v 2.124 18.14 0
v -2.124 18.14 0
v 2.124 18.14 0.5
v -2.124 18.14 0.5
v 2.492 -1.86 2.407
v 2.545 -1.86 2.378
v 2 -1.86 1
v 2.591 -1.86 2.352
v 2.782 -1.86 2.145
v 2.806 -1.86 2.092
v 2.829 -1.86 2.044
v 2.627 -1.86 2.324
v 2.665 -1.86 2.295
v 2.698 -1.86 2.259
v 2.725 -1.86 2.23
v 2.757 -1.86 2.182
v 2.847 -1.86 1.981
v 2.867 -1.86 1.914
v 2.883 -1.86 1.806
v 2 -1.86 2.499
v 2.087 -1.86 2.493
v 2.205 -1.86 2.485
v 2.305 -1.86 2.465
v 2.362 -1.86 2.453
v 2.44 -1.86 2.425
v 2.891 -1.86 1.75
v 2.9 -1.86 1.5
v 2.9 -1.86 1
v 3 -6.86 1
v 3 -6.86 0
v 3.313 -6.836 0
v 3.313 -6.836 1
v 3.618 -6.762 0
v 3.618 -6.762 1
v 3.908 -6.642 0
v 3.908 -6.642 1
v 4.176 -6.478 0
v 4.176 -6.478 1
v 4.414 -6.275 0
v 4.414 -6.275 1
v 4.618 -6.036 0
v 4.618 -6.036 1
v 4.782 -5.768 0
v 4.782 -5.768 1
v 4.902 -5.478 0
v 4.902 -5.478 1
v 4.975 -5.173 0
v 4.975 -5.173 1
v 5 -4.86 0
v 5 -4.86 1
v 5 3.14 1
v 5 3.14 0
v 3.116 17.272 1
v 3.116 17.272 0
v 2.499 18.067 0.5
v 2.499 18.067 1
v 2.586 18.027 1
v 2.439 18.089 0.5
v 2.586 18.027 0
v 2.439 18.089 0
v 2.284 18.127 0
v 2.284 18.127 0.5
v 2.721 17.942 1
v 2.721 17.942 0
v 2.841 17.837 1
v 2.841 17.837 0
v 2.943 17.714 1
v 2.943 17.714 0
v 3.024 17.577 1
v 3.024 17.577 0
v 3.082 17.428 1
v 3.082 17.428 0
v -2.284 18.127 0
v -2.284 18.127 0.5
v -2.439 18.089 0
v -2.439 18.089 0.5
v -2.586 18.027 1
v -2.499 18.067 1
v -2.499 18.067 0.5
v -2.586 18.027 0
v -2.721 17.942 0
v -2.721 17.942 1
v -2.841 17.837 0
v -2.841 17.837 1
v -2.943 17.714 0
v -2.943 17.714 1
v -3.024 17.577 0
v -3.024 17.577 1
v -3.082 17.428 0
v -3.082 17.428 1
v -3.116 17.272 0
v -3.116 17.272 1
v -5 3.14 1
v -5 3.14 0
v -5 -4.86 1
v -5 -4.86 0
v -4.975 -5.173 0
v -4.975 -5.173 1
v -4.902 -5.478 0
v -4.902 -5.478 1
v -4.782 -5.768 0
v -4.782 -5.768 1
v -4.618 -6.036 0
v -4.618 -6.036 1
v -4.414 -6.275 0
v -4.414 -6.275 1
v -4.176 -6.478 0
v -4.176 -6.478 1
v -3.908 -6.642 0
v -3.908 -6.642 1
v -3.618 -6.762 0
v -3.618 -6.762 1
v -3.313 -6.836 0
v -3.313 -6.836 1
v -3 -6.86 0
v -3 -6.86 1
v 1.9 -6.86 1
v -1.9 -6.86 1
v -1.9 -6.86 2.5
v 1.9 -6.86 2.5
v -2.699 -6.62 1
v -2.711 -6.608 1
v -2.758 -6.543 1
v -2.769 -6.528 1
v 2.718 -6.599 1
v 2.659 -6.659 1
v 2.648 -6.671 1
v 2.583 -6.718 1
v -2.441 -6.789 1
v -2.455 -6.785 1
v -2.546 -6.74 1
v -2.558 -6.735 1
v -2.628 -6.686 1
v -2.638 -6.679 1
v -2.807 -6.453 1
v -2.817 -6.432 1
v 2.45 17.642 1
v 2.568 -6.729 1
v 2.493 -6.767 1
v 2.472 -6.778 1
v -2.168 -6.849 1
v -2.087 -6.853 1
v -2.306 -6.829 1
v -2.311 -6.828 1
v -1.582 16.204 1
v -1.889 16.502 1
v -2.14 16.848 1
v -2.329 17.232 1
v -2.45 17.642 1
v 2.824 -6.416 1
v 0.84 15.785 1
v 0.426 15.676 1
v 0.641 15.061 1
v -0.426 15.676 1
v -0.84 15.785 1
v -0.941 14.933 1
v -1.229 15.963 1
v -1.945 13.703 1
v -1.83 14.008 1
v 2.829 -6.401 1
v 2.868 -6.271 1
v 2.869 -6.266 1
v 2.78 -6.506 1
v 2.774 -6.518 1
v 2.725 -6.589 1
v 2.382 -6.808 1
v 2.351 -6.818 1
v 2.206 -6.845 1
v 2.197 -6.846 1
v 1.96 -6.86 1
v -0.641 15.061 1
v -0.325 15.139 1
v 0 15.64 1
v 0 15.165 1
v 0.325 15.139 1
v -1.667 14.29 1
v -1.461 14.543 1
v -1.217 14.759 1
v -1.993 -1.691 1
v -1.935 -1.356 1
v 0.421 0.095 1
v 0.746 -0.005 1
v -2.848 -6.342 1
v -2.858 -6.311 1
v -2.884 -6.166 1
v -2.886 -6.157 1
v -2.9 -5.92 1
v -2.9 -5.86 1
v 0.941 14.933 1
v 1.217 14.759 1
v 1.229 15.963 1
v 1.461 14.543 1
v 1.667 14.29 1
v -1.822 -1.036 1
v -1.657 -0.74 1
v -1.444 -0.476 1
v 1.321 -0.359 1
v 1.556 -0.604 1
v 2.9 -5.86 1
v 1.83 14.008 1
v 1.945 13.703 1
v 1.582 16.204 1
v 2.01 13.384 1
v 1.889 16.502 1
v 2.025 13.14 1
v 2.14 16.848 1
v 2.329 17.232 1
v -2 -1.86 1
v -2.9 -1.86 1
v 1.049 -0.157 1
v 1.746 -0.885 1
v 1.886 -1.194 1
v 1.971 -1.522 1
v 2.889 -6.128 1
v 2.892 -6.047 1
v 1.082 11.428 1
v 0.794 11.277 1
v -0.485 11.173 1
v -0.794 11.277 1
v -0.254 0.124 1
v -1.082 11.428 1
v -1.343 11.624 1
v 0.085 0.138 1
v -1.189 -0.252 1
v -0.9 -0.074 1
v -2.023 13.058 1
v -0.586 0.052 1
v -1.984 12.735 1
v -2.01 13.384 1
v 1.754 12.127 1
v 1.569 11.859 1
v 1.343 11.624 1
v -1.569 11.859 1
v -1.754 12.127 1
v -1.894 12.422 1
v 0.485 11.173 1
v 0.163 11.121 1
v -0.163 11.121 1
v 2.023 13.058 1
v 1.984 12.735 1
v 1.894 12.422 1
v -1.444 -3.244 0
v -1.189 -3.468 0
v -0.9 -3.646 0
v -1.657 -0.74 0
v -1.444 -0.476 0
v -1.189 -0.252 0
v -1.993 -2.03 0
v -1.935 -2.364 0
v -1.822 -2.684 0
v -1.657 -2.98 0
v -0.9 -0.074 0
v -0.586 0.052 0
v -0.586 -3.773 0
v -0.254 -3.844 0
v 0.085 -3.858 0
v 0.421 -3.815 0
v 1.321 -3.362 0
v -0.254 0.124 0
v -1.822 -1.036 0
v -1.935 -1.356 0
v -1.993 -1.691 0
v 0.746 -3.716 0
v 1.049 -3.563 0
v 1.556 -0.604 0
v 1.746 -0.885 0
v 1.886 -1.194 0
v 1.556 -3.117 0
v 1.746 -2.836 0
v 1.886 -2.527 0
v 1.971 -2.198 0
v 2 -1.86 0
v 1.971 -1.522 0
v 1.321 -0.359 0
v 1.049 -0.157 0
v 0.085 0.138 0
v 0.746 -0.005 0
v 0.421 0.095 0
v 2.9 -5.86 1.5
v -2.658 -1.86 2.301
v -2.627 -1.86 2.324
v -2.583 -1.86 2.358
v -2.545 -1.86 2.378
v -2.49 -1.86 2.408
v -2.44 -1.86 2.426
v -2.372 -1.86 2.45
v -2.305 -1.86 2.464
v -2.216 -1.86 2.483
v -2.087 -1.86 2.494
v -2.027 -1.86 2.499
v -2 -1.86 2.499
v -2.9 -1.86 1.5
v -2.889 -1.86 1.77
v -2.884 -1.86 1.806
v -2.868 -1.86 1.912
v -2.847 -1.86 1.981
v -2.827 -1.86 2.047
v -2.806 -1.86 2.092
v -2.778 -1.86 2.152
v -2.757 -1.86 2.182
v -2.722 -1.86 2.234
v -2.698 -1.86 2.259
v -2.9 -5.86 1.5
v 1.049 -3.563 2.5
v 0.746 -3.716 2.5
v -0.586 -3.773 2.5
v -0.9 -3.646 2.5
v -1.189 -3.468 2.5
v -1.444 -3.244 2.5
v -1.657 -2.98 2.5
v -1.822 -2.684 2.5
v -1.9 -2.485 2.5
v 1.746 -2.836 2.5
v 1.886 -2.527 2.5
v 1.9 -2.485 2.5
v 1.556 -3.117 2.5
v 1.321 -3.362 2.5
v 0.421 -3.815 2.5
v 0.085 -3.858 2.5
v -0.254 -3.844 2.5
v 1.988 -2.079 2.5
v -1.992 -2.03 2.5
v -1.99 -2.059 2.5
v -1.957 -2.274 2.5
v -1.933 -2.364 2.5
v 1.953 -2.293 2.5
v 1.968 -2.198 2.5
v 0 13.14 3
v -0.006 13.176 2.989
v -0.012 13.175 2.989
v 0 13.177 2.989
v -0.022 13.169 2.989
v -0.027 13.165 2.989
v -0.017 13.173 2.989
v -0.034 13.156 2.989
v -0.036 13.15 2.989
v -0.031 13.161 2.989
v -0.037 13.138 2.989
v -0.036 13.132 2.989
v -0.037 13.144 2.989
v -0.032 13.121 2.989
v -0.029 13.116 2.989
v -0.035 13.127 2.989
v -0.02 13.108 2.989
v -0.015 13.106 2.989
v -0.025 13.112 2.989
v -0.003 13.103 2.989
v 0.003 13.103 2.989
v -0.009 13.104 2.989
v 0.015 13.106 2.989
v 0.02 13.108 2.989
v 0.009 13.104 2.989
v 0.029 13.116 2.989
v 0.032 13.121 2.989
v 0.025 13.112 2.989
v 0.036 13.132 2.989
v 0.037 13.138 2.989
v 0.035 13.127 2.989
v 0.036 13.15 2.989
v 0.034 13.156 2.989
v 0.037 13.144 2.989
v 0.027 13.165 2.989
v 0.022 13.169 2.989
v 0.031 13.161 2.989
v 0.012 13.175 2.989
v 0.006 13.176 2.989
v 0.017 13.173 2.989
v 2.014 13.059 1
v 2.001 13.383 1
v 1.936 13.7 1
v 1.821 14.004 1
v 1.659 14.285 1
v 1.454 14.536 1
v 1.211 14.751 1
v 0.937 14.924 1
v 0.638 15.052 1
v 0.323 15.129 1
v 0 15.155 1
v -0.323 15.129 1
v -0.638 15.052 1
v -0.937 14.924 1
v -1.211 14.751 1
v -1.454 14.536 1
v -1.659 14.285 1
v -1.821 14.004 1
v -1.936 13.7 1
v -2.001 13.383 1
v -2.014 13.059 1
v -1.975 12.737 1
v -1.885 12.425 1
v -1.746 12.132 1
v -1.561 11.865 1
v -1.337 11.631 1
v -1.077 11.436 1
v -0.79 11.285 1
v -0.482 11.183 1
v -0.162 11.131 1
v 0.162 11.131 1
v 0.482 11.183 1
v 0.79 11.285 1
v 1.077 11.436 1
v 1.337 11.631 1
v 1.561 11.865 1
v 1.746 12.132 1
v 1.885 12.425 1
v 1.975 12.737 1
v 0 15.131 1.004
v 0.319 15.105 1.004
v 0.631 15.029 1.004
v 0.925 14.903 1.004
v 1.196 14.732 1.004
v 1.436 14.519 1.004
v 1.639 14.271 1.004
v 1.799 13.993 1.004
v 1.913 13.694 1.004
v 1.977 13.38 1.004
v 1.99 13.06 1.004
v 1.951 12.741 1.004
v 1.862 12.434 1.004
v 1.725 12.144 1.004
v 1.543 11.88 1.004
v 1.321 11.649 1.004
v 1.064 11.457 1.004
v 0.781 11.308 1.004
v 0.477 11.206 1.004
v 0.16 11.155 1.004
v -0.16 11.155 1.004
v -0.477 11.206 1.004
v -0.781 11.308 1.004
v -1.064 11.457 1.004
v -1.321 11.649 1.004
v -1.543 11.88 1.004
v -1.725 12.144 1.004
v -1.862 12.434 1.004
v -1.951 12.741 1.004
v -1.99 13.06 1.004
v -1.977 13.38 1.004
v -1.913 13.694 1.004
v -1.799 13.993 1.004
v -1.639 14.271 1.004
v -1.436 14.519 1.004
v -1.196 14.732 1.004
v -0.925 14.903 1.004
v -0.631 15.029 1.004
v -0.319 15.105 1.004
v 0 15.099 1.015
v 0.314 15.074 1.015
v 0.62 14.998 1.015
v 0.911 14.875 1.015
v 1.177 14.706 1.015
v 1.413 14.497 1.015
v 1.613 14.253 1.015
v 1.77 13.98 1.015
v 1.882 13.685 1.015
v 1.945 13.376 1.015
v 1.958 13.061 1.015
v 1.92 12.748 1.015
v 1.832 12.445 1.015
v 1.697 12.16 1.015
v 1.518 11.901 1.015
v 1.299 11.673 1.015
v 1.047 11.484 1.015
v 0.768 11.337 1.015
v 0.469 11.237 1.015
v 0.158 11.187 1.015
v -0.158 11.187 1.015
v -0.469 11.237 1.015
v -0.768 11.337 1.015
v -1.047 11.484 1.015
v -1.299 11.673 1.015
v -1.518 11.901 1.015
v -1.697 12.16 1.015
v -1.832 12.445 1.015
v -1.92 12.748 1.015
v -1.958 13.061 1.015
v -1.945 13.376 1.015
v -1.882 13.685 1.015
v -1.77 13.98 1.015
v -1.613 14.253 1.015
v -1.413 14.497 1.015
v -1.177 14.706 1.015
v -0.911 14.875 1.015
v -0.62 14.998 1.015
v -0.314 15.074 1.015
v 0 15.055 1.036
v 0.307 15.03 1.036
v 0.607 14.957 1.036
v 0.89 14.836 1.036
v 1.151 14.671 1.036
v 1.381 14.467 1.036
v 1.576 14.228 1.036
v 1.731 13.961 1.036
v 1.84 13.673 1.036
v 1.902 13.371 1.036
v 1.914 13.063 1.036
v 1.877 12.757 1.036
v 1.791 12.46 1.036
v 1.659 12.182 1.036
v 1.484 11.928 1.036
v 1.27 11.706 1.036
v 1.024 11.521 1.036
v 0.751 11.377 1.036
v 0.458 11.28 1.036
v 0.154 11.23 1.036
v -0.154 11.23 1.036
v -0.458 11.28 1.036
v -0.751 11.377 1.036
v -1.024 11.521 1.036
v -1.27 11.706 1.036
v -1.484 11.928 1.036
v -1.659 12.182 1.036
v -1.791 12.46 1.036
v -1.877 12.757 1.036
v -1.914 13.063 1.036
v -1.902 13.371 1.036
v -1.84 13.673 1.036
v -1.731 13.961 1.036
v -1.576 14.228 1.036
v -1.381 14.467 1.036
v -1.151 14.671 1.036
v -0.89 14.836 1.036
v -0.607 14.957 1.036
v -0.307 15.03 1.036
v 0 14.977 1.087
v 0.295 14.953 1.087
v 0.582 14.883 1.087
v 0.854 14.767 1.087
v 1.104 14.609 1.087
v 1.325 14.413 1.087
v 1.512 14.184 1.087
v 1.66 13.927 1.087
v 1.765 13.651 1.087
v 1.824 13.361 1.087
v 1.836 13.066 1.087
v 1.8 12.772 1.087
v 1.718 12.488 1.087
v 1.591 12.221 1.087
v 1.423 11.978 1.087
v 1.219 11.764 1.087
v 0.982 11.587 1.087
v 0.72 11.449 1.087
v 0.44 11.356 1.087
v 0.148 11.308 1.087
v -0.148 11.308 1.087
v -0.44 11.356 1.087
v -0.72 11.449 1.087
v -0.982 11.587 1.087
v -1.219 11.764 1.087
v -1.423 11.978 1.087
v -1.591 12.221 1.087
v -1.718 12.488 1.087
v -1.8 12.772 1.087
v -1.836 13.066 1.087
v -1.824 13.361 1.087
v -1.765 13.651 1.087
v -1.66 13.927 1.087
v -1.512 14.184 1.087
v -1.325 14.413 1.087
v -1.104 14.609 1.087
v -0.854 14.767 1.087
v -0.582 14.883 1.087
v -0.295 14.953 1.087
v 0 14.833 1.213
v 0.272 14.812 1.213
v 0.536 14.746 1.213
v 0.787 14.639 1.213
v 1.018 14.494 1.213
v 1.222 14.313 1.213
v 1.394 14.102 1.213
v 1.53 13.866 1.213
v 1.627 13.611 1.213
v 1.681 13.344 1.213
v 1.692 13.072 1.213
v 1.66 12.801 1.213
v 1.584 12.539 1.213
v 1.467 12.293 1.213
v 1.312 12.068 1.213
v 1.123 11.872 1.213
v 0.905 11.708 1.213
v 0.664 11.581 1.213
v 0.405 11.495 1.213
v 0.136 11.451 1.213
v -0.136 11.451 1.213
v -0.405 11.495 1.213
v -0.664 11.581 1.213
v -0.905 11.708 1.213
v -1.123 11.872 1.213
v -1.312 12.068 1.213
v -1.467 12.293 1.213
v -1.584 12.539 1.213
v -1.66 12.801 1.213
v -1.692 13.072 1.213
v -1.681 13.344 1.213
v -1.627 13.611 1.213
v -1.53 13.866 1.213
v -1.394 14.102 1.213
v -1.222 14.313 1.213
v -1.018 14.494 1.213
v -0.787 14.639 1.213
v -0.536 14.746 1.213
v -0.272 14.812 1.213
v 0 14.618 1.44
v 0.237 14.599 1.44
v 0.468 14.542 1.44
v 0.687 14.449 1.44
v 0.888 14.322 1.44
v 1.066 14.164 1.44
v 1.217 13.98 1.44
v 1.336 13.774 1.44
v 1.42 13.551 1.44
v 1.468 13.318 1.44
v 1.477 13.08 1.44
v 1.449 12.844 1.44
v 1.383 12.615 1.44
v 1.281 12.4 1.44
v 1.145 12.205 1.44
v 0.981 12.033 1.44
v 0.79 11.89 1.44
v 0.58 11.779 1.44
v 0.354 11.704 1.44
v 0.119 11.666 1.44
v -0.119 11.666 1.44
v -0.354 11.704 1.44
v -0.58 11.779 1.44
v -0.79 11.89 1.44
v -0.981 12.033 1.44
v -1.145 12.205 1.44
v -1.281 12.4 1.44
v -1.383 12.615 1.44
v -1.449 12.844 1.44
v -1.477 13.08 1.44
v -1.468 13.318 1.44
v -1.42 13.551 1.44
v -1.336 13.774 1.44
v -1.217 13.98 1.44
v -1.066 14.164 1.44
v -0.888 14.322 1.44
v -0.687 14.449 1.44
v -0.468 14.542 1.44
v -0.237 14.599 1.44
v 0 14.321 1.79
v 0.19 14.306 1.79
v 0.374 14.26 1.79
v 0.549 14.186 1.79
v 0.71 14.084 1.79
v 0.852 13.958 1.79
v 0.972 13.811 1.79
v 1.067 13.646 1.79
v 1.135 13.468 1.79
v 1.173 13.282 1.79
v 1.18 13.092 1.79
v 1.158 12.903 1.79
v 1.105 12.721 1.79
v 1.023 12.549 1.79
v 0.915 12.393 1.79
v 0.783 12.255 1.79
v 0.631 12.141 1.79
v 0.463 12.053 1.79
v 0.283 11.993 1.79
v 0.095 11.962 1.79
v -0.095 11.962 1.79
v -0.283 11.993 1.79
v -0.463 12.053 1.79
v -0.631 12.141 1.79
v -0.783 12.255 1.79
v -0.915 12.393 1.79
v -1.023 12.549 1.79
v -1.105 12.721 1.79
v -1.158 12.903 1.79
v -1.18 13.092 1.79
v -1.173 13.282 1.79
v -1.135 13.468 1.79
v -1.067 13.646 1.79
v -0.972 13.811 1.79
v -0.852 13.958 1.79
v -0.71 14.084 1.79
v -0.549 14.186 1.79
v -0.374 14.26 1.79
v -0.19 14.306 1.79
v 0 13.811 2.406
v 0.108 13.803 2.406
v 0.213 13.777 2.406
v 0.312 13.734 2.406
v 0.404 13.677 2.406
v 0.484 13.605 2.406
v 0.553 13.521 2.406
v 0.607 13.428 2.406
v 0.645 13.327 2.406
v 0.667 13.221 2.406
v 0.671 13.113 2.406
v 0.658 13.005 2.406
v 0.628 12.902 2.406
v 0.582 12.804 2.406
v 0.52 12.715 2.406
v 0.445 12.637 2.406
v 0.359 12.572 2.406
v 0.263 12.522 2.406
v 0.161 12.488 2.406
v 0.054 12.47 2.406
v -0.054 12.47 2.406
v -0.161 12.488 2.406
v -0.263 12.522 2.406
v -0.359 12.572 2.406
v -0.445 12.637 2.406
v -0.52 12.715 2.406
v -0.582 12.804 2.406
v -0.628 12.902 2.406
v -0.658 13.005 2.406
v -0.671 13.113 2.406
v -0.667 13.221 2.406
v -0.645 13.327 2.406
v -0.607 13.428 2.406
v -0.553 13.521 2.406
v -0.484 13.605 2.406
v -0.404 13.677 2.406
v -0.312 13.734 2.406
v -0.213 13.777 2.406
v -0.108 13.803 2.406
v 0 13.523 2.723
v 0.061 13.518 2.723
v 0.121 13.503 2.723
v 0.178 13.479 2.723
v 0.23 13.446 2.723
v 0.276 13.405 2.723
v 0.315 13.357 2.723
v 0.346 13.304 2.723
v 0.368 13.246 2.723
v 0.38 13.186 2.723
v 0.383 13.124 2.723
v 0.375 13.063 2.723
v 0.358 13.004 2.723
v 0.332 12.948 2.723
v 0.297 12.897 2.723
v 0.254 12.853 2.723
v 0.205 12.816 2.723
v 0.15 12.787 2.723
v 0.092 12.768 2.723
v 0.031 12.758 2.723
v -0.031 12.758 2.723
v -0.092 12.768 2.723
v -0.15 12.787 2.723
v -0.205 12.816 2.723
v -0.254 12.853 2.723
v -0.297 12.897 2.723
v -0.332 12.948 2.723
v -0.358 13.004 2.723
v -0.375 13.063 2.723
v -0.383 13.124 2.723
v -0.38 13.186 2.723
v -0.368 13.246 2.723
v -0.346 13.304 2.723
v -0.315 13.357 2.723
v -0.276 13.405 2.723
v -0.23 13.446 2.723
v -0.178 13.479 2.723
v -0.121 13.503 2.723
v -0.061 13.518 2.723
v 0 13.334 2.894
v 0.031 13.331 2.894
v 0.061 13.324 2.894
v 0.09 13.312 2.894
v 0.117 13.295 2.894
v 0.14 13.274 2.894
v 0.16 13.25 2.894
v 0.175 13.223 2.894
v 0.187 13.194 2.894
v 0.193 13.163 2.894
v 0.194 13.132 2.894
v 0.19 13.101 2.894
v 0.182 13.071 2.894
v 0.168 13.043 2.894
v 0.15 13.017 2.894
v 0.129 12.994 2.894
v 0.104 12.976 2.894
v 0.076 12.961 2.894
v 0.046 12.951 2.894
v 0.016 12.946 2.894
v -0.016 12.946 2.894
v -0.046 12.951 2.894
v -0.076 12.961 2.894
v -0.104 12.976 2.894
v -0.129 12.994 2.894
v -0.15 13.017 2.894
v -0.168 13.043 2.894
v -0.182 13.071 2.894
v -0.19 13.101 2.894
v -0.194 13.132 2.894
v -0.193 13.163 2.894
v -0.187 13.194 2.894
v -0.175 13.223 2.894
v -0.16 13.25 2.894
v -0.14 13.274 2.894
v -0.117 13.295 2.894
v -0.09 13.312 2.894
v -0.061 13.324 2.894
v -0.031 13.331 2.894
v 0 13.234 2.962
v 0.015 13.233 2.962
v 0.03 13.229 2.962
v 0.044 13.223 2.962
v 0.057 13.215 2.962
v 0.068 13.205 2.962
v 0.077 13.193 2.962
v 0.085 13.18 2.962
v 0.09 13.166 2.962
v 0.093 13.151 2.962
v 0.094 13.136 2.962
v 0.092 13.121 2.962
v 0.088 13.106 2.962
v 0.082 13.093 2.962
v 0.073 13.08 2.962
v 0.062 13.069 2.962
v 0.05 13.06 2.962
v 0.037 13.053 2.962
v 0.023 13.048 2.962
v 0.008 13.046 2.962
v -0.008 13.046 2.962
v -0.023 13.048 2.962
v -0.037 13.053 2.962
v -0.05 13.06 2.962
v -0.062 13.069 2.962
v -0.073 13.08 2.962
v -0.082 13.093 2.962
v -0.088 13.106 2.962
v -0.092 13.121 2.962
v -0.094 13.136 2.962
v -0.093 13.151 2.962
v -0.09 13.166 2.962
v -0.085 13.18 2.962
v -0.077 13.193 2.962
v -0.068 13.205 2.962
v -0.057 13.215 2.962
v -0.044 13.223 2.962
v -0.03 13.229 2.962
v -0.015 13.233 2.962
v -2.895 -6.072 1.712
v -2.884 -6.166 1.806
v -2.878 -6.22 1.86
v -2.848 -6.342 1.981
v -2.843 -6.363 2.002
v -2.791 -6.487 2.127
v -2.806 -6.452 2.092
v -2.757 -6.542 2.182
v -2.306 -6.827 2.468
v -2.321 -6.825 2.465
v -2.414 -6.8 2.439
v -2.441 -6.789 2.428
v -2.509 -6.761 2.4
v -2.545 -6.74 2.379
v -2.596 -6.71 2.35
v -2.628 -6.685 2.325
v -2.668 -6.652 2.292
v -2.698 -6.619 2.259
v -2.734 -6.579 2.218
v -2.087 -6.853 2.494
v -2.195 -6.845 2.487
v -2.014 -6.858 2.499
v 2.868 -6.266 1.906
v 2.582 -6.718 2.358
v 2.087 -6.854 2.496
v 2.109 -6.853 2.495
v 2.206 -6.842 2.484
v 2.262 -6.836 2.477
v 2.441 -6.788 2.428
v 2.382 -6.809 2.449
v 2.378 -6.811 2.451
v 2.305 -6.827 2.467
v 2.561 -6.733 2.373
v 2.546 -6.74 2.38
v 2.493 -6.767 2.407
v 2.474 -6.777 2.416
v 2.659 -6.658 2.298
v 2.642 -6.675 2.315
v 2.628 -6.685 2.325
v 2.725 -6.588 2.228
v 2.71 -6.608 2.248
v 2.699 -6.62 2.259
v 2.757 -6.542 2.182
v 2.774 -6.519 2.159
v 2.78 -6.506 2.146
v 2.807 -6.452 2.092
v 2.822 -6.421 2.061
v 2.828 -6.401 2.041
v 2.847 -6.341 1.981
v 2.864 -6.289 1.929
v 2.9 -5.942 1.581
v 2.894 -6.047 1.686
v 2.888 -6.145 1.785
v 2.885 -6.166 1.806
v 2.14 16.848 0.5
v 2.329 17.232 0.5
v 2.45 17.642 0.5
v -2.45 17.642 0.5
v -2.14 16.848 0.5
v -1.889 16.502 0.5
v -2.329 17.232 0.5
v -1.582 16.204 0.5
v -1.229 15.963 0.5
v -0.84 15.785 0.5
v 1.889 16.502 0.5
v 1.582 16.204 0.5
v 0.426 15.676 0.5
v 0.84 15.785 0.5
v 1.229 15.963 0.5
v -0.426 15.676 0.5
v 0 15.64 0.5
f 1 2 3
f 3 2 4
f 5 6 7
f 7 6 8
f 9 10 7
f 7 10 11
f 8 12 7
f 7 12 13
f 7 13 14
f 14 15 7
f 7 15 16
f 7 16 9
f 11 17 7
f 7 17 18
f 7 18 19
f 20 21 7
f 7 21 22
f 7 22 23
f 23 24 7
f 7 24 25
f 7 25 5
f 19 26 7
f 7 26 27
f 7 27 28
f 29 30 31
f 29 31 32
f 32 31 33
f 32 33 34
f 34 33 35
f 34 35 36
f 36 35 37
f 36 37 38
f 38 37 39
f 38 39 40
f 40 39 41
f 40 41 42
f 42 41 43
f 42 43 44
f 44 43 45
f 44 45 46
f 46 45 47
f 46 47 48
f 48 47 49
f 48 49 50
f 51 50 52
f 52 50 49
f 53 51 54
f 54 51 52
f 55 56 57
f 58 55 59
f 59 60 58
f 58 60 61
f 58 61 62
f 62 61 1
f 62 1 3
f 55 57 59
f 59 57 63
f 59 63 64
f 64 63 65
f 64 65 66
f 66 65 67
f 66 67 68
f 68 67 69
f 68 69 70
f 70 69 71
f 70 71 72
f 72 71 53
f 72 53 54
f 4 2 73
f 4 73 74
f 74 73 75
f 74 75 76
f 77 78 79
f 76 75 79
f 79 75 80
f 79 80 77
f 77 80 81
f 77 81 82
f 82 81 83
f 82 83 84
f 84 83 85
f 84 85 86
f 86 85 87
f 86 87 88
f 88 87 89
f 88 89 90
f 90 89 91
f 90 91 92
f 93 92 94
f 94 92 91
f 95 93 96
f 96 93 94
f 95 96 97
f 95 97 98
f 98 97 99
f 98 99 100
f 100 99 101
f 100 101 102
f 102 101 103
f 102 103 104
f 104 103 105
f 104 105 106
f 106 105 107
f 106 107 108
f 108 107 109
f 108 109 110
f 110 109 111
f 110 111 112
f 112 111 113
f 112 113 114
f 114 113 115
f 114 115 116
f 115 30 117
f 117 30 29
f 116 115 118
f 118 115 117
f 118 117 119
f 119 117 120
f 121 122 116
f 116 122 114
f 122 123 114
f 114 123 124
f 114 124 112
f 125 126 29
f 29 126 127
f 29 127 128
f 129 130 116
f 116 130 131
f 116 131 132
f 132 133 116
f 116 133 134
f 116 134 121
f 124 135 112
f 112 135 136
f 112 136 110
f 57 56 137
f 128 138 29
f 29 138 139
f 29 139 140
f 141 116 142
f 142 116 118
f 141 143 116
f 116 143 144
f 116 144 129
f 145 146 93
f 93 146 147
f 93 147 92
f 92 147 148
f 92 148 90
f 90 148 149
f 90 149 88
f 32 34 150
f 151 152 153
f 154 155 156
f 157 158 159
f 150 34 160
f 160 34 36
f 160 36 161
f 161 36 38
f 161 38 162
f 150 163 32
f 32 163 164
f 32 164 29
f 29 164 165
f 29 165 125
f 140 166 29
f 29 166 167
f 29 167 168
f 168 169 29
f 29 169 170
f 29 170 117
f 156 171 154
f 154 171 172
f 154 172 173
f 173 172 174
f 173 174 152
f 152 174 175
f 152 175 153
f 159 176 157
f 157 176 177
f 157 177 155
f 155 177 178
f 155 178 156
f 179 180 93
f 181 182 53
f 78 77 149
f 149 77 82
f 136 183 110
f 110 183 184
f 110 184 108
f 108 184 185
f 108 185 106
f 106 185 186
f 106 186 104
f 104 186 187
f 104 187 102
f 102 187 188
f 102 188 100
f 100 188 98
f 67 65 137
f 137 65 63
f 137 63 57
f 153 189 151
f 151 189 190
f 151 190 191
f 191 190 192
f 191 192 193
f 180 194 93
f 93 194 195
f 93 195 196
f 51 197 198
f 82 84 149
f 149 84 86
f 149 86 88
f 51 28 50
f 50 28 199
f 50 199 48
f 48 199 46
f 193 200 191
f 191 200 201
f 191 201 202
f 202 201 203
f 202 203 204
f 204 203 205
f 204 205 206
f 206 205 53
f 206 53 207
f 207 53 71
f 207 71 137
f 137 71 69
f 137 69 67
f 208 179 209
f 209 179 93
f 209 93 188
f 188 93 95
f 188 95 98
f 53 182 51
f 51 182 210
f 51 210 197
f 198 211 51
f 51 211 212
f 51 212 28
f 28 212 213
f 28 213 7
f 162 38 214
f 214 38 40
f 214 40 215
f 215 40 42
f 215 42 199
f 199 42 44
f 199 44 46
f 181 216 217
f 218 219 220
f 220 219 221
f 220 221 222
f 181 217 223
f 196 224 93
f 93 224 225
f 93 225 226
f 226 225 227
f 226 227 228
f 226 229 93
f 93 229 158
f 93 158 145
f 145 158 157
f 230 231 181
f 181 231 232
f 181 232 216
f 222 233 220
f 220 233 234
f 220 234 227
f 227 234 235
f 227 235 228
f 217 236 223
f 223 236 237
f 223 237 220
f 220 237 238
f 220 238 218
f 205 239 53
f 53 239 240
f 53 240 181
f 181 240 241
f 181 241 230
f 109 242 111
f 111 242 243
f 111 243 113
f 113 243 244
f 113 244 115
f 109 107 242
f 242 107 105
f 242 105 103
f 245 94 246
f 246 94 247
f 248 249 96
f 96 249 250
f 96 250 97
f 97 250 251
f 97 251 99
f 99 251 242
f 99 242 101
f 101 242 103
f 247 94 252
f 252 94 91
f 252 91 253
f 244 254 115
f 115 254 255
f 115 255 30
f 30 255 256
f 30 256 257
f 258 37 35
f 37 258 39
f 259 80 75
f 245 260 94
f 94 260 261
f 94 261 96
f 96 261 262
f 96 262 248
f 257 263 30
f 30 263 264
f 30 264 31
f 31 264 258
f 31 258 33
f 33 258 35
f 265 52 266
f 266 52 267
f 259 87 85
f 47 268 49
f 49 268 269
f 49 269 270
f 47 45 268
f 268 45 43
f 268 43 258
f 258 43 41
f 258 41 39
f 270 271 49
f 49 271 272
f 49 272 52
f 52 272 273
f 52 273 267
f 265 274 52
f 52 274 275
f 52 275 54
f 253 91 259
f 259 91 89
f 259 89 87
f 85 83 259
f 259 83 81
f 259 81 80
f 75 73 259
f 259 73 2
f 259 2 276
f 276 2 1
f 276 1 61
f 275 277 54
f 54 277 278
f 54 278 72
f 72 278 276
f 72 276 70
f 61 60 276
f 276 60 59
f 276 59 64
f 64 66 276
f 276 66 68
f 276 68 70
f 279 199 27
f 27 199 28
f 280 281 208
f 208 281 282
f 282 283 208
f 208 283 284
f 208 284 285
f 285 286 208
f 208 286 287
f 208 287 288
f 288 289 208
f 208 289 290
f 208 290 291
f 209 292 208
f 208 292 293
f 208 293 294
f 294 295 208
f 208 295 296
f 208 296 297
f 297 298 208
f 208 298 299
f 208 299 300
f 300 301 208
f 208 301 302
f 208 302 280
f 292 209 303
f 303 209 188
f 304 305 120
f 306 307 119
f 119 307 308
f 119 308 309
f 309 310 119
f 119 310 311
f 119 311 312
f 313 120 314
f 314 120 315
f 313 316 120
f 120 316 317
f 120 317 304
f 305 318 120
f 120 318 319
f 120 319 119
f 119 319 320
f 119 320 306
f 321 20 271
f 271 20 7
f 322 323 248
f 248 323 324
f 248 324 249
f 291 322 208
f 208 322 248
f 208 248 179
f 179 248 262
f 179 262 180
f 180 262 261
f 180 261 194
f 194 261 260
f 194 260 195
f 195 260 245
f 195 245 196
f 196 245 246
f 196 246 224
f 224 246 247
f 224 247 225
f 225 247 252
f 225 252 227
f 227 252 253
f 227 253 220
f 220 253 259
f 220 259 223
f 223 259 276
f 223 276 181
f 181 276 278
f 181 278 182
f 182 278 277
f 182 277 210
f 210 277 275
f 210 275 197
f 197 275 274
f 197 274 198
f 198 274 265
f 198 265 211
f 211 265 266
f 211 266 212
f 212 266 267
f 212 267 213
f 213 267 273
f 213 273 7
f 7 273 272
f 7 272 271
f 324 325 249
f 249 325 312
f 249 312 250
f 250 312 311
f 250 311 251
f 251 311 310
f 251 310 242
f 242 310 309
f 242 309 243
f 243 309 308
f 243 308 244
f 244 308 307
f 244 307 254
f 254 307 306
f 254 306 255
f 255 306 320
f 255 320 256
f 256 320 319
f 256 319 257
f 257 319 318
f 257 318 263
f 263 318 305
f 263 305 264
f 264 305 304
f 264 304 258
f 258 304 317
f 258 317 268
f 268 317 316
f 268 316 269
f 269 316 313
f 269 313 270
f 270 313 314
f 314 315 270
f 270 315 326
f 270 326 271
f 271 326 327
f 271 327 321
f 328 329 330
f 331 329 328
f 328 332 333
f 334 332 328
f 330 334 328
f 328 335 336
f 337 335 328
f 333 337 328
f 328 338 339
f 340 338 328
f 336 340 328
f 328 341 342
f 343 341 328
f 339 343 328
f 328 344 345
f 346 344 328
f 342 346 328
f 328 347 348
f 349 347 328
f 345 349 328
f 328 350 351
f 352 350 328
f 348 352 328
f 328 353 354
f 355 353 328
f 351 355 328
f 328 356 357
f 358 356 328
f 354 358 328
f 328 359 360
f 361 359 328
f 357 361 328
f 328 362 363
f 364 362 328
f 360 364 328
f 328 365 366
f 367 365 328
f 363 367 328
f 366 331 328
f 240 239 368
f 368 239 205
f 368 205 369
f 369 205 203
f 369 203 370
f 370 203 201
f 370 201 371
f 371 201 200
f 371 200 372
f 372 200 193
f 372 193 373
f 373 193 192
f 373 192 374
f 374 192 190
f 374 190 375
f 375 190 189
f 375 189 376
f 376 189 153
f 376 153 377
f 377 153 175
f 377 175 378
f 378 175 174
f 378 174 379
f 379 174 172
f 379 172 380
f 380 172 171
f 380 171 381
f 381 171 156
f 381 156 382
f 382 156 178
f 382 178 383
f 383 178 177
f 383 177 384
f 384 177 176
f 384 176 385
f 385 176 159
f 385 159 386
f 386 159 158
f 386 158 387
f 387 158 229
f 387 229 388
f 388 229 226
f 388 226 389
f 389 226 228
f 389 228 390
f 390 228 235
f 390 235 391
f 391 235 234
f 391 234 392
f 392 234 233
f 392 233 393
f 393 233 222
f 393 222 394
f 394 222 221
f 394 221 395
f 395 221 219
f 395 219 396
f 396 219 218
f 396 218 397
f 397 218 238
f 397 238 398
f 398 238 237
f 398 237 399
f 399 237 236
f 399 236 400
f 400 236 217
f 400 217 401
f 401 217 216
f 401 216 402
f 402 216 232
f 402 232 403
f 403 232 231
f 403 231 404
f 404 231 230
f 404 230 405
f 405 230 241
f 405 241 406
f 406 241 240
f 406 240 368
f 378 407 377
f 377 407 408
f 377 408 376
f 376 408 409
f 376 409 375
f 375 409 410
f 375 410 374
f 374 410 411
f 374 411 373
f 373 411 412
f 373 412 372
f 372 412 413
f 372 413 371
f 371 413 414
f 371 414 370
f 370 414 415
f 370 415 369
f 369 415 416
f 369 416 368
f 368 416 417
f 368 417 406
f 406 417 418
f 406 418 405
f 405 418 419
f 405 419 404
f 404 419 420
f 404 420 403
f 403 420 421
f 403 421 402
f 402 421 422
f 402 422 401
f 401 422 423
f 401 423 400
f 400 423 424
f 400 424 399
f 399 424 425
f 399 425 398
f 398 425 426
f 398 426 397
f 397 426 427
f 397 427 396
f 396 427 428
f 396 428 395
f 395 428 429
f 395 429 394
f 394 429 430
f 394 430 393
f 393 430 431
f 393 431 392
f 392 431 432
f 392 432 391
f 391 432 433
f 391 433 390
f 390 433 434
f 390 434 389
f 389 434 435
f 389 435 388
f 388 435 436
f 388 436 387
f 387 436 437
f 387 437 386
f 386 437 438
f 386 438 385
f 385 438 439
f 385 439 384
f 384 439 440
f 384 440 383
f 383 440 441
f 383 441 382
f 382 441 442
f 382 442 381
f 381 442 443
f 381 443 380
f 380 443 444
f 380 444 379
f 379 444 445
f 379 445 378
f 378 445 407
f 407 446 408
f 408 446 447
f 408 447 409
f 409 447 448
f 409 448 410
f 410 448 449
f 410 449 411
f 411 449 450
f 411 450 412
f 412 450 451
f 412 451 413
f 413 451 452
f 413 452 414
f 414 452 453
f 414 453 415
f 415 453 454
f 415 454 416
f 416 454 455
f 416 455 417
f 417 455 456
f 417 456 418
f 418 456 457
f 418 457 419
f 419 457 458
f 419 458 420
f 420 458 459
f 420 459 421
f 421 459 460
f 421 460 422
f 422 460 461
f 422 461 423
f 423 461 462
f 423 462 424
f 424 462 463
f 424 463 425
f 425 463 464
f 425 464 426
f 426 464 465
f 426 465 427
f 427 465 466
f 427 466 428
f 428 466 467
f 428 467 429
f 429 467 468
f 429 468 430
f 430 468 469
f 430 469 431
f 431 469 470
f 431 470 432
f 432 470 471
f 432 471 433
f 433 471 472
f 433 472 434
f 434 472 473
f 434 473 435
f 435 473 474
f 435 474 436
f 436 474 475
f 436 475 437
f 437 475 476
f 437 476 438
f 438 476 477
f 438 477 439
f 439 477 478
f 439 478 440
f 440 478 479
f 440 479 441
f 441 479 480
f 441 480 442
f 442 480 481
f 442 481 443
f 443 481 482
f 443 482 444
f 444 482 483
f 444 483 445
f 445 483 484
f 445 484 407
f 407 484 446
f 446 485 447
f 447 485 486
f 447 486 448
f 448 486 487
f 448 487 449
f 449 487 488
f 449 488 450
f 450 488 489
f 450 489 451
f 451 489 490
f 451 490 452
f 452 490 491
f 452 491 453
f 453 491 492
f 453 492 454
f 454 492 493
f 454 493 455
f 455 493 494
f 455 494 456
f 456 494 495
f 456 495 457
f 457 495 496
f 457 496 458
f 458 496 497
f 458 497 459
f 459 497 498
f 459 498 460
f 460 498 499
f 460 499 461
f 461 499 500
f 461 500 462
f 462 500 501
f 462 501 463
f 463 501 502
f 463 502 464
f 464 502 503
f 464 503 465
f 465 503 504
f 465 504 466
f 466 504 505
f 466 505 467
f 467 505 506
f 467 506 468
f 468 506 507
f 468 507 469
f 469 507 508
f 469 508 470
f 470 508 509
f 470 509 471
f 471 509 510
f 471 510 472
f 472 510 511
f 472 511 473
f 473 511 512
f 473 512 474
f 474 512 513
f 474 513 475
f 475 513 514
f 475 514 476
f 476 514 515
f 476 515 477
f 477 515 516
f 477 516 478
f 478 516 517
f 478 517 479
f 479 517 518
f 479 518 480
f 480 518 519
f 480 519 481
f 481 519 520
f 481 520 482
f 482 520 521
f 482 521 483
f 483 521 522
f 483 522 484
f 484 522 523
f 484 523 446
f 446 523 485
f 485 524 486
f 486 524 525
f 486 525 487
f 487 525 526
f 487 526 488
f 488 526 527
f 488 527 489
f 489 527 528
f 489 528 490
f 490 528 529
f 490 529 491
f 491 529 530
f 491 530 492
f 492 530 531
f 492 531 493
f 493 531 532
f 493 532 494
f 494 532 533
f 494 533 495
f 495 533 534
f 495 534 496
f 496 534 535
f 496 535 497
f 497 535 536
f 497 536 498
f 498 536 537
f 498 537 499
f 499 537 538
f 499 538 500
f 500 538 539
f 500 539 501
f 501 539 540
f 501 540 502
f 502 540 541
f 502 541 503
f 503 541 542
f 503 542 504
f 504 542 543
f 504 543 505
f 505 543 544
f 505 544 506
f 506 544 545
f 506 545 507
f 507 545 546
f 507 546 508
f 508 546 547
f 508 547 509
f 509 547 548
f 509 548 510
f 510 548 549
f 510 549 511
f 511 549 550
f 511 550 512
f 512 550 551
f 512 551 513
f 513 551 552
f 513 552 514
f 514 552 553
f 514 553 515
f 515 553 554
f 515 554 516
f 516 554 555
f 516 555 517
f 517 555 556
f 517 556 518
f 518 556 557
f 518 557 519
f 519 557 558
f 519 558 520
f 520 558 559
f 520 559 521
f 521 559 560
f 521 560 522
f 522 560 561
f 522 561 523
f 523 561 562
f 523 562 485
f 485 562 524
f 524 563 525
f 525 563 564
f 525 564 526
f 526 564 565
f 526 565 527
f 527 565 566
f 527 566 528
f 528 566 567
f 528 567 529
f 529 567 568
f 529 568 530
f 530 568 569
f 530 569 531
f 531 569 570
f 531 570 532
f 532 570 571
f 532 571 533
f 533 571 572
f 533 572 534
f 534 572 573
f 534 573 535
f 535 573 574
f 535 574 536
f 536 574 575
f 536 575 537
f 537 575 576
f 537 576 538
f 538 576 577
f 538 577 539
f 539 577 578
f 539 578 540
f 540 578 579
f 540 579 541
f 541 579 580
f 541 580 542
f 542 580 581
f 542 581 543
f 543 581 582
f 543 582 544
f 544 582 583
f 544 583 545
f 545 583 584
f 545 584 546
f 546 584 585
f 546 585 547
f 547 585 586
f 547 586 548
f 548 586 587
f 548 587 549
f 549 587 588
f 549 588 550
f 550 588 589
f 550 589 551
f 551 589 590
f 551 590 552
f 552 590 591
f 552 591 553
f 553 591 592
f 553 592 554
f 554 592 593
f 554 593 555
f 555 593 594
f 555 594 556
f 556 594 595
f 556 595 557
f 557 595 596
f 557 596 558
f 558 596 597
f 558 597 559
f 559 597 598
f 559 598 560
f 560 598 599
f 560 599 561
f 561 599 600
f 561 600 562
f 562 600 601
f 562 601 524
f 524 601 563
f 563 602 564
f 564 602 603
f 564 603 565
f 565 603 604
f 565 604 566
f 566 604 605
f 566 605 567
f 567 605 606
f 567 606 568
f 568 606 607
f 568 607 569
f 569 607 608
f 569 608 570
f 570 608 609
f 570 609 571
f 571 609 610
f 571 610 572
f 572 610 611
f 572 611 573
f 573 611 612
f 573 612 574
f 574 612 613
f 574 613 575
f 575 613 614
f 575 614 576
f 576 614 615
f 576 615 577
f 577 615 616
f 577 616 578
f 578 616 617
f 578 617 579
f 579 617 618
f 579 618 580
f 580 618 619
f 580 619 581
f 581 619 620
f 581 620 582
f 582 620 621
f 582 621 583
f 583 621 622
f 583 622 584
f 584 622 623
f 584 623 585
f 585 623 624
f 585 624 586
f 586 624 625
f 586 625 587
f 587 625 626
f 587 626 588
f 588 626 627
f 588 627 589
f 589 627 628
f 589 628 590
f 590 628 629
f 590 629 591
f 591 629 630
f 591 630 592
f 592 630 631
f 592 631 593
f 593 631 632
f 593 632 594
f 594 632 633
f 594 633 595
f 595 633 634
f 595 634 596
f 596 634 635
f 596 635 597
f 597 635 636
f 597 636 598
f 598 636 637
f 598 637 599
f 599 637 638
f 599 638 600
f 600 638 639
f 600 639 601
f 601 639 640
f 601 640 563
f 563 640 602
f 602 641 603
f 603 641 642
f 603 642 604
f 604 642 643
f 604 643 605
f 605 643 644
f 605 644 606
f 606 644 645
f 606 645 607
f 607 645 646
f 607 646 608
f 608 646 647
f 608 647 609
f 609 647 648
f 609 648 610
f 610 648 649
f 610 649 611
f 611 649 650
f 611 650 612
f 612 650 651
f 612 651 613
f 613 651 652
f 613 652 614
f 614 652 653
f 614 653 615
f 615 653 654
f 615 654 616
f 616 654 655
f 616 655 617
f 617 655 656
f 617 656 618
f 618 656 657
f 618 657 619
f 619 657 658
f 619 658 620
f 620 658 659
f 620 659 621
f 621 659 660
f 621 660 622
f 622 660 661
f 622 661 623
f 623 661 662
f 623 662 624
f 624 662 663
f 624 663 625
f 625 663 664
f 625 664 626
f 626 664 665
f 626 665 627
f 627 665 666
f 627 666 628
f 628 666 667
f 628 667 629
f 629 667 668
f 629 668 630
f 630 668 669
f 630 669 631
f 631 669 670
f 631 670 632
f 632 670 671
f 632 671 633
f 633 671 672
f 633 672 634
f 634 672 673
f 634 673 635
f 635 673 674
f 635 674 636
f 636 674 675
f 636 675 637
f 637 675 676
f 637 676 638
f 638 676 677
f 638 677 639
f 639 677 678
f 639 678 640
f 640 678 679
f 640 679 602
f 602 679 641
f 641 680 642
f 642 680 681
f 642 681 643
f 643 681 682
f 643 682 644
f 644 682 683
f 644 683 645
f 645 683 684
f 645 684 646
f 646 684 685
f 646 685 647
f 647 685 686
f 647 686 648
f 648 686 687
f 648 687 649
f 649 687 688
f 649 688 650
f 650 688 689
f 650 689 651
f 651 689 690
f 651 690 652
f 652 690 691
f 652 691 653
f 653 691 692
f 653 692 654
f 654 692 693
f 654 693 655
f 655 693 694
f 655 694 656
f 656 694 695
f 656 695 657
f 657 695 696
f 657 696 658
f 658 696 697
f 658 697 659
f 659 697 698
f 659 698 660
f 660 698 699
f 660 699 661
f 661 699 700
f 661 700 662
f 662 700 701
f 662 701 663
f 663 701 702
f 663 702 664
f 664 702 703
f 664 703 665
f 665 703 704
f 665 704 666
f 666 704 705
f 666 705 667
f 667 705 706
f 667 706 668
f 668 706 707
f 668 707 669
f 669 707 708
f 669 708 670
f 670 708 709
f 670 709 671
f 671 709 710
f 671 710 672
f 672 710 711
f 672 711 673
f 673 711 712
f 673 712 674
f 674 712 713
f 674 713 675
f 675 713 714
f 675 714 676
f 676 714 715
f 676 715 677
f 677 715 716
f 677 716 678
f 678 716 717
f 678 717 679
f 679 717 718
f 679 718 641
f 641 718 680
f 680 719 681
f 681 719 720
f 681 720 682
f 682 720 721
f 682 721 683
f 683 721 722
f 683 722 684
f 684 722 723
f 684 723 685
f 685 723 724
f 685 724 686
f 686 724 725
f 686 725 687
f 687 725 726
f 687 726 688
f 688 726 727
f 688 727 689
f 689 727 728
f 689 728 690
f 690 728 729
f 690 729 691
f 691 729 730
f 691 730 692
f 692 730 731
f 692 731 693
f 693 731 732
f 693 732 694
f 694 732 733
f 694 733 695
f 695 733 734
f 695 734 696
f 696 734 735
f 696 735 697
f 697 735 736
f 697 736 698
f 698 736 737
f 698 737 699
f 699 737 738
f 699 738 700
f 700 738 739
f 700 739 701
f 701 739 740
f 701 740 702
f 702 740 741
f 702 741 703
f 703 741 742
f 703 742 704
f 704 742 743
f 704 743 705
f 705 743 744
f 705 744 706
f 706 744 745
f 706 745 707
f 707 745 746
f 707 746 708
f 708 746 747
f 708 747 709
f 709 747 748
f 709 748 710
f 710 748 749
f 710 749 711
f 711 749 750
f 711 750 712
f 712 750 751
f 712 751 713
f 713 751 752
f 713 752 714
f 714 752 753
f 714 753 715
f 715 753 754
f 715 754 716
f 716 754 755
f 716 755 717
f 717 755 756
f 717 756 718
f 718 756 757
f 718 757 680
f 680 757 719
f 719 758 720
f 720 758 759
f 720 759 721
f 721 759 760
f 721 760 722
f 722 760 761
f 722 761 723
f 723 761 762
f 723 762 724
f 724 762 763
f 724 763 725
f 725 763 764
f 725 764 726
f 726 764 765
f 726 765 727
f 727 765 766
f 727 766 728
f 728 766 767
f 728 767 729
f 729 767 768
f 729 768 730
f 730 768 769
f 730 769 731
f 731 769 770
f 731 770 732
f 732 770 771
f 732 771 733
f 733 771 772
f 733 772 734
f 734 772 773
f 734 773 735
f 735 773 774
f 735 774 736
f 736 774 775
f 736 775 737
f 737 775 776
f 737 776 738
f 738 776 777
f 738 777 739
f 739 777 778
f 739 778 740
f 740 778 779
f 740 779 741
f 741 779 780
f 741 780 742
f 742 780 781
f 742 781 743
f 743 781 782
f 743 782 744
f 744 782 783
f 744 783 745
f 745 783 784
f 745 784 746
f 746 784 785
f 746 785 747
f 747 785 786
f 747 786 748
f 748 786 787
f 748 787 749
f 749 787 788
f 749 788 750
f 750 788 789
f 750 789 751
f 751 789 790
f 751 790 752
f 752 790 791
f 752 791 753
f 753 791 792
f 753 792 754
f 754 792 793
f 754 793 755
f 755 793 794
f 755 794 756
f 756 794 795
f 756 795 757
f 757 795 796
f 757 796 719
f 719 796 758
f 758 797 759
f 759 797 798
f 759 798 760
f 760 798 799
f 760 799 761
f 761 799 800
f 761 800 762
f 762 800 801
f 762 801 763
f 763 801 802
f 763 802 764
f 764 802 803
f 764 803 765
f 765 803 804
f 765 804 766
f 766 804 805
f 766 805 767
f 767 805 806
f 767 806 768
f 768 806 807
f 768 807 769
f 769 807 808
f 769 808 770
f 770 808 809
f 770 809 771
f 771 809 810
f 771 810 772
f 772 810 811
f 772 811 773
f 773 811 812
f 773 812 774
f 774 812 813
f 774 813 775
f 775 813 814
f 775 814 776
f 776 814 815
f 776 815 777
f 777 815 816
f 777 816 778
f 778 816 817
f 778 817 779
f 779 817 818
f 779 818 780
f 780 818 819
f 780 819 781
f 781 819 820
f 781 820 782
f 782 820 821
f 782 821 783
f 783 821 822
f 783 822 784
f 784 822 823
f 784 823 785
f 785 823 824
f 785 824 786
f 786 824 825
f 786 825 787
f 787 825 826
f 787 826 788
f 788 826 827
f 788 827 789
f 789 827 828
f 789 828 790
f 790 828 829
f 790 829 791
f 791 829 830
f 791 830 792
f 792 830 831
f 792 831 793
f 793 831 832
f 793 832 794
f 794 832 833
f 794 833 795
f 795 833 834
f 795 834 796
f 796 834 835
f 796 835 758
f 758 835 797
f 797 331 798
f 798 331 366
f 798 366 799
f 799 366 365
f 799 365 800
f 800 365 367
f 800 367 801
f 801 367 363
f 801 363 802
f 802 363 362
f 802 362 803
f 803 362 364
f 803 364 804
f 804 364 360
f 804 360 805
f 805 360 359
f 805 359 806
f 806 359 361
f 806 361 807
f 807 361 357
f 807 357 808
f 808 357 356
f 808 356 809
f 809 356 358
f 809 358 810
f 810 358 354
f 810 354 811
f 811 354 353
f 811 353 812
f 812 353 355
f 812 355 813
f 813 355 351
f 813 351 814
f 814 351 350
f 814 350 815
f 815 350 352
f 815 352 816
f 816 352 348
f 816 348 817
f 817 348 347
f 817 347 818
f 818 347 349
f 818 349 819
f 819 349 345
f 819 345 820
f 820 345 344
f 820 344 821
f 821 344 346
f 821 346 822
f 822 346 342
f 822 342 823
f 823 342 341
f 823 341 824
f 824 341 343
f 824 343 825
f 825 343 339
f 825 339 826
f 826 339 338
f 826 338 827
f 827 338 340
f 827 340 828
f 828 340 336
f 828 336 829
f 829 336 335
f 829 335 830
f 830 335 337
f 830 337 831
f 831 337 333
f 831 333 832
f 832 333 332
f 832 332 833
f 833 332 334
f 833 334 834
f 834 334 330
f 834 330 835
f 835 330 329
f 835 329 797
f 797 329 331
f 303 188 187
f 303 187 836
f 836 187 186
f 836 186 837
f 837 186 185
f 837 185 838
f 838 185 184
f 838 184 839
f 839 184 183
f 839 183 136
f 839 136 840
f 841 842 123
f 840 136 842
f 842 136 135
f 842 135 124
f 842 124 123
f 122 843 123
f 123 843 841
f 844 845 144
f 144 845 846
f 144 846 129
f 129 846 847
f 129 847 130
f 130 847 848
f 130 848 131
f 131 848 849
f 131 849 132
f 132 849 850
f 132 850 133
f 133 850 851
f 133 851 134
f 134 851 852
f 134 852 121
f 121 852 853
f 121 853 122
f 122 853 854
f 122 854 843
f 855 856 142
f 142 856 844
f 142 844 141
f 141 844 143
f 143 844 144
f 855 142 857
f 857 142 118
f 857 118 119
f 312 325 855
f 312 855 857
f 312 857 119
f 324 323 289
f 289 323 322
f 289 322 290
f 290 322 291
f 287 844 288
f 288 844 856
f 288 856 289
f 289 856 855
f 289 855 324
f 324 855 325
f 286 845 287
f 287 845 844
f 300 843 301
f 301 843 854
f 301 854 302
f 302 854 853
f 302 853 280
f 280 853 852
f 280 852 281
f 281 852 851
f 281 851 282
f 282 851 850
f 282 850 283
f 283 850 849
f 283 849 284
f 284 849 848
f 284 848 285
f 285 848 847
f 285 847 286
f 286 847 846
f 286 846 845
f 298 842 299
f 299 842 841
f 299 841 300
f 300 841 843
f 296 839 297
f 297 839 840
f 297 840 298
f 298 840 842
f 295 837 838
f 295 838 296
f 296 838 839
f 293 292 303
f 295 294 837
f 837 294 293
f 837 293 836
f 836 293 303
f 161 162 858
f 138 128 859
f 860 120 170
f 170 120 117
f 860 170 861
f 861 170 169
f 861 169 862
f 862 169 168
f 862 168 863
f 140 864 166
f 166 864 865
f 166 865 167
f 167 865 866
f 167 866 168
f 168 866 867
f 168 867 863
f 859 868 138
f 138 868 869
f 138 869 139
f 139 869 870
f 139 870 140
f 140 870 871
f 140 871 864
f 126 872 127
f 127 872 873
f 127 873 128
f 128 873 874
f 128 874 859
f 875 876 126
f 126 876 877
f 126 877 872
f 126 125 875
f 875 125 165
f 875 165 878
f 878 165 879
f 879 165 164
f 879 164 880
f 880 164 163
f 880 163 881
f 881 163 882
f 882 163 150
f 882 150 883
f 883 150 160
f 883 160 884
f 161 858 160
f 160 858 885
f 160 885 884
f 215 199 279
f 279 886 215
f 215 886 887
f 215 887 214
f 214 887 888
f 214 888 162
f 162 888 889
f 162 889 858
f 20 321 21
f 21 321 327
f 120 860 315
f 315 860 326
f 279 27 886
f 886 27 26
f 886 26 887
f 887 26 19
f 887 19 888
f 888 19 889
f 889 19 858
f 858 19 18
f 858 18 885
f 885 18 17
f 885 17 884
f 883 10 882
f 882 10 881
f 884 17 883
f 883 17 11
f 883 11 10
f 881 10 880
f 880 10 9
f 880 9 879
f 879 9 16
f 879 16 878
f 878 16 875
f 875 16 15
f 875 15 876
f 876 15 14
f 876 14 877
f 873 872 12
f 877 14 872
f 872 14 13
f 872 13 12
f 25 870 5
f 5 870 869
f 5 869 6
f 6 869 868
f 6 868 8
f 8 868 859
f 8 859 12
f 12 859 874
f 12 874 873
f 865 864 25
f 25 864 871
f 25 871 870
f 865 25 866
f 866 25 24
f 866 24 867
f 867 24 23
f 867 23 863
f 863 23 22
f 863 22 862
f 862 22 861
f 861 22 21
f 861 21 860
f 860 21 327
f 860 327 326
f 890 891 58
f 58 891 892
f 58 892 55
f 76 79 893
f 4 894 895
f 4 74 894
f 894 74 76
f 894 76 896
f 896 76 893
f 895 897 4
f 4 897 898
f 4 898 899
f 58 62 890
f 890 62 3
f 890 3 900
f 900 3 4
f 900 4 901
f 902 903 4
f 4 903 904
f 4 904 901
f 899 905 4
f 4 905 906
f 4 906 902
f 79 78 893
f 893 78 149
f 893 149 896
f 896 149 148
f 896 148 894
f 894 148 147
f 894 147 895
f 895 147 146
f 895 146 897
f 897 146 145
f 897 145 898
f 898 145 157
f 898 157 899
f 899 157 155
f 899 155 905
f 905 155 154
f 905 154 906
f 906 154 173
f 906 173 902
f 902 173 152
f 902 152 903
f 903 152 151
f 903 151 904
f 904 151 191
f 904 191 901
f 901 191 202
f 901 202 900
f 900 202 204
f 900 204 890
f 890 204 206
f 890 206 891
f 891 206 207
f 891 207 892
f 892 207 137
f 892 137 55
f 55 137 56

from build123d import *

# Parameters (mm, degrees)
BOSS_EXTRUDE1_DEPTH     = 1
SKETCH4_W               = 5.8
SKETCH4_H               = 5
BOSS_EXTRUDE2_DEPTH     = 1.5
CUT_EXTRUDE2_DEPTH      = 19.875882218
CUT_EXTRUDE2_DEPTH_BACK = 19.875882218
SKETCH3_R               = 2
FILLET2_SIZE            = 1
SKETCH11_R              = 2.5
CUT_EXTRUDE4_DEPTH      = 0.5


with BuildPart() as part:
    # Sketch1 → Boss-Extrude1 (new body)
    with BuildSketch(Plane.XY):
        with BuildLine():
            Line((-3, -6.860294118), (3, -6.860294118))
            ThreePointArc((3, -6.860294118), (4.414213562, -6.27450768), (5, -4.860294118))
            Line((5, -4.860294118), (5, 3.139705882))
            Line((5, 3.139705882), (3.115711504, 17.271869602))
            ThreePointArc((3.115711504, 17.271869602), (2.783208235, 17.89209), (2.124483603, 18.139705882))
            Line((2.124483603, 18.139705882), (-2.124483603, 18.139705882))
            ThreePointArc((-2.124483603, 18.139705882), (-2.783208235, 17.89209), (-3.115711504, 17.271869602))
            Line((-3.115711504, 17.271869602), (-5, 3.139705882))
            Line((-5, 3.139705882), (-5, -4.860294118))
            ThreePointArc((-5, -4.860294118), (-4.414213562, -6.27450768), (-3, -6.860294118))
        make_face()
    extrude(amount=BOSS_EXTRUDE1_DEPTH)

    # Sketch4 → Boss-Extrude2 (add)
    with BuildSketch(Plane.XY.offset(1)):
        with Locations((0, -4.360294118)):
            Rectangle(SKETCH4_W, SKETCH4_H)
    extrude(amount=BOSS_EXTRUDE2_DEPTH)

    # Sketch3 → Cut-Extrude2 (cut, two sides: drawn at the far end of the back side and taken through both)
    with BuildSketch(Plane.XY.offset(1).offset(-CUT_EXTRUDE2_DEPTH_BACK)):
        with Locations((0, -1.860294118)):
            Circle(SKETCH3_R)
    extrude(amount=CUT_EXTRUDE2_DEPTH + CUT_EXTRUDE2_DEPTH_BACK, mode=Mode.SUBTRACT)

    # Sketch10 → Revolve1 (revolve)
    with BuildSketch(Plane.ZY):
        with BuildLine():
            Line((3, 13.139705882), (1, 13.139705882))
            Line((1, 13.139705882), (1, 15.164832594))
            add(Edge.make_bspline(
                [(1, 15.164832594), (1.003638123, 14.768281169), (2.909332007, 13.597450134), (3, 13.139705882)],
                knots=[0, 0, 0, 0, 1, 1, 1, 1], degree=3))
        make_face()
    revolve(axis=Axis((0, 13.139705882, 3), (0, 0, -1)))

    # Fillet2
    # a fillet whose section is not a circle: 1 mm, written as the material it takes off along each edge
    with BuildSketch(Plane(origin=(2.9, -9.360294118, 2.5), x_dir=(0, 0, -1), z_dir=(0, 1, 0)), Plane(origin=(-2.9, 0.639705882, 2.5), x_dir=(0, 0, -1), z_dir=(0, -1, 0))) as fillet2_piece_1:
        with BuildLine():
            add(Edge.make_bspline([(FILLET2_SIZE, 0), (FILLET2_SIZE * 0.831801948466, 0), (FILLET2_SIZE * 0.663603896932, 0), (FILLET2_SIZE * 0.292893218813, FILLET2_SIZE * 0.0716919198361), (FILLET2_SIZE * 0.0716919198361, FILLET2_SIZE * 0.292893218813), (0, FILLET2_SIZE * 0.663603896932), (0, FILLET2_SIZE * 0.831801948466), (0, FILLET2_SIZE)], knots=[0, 0, 0, 0, 0, 0, 0.5, 0.5, 1, 1, 1, 1, 1, 1], degree=5))
            Line((0, FILLET2_SIZE), (0, 0))
            Line((0, 0), (FILLET2_SIZE, 0))
        make_face()
    fillet2_piece_1_solid = extrude(amount=10, mode=Mode.PRIVATE)
    with BuildSketch(Plane(origin=(2.9, -6.860294118, 1), x_dir=(-1, 0, 0), z_dir=(0, 0, 1))) as fillet2_piece_2:
        with BuildLine():
            add(Edge.make_bspline([(FILLET2_SIZE, 0), (FILLET2_SIZE * 0.831801948466, 0), (FILLET2_SIZE * 0.663603896932, 0), (FILLET2_SIZE * 0.292893218813, -FILLET2_SIZE * 0.0716919198361), (FILLET2_SIZE * 0.0716919198361, -FILLET2_SIZE * 0.292893218813), (0, -FILLET2_SIZE * 0.663603896932), (0, -FILLET2_SIZE * 0.831801948466), (0, -FILLET2_SIZE)], knots=[0, 0, 0, 0, 0, 0, 0.5, 0.5, 1, 1, 1, 1, 1, 1], degree=5))
            Line((0, -FILLET2_SIZE), (0, 0))
            Line((0, 0), (FILLET2_SIZE, 0))
        make_face()
    fillet2_piece_2_solid = extrude(amount=4, mode=Mode.PRIVATE)
    with BuildSketch(Plane(origin=(-2.9, -6.860294118, 1), x_dir=(1, 0, 0), z_dir=(0, 0, 1))) as fillet2_piece_3:
        with BuildLine():
            add(Edge.make_bspline([(FILLET2_SIZE, 0), (FILLET2_SIZE * 0.831801948466, 0), (FILLET2_SIZE * 0.663603896932, 0), (FILLET2_SIZE * 0.292893218813, FILLET2_SIZE * 0.0716919198361), (FILLET2_SIZE * 0.0716919198361, FILLET2_SIZE * 0.292893218813), (0, FILLET2_SIZE * 0.663603896932), (0, FILLET2_SIZE * 0.831801948466), (0, FILLET2_SIZE)], knots=[0, 0, 0, 0, 0, 0, 0.5, 0.5, 1, 1, 1, 1, 1, 1], degree=5))
            Line((0, FILLET2_SIZE), (0, 0))
            Line((0, 0), (FILLET2_SIZE, 0))
        make_face()
    fillet2_piece_3_solid = extrude(amount=4, mode=Mode.PRIVATE)
    add([fillet2_piece_1_solid, fillet2_piece_2_solid, fillet2_piece_3_solid], mode=Mode.SUBTRACT)

    # Sketch11 → Cut-Extrude4 (cut)
    with BuildSketch(Plane.XY.offset(1)):
        with Locations((0, 18.139705882)):
            Circle(SKETCH11_R)
    extrude(amount=-CUT_EXTRUDE4_DEPTH, mode=Mode.SUBTRACT)


solid = part.part
